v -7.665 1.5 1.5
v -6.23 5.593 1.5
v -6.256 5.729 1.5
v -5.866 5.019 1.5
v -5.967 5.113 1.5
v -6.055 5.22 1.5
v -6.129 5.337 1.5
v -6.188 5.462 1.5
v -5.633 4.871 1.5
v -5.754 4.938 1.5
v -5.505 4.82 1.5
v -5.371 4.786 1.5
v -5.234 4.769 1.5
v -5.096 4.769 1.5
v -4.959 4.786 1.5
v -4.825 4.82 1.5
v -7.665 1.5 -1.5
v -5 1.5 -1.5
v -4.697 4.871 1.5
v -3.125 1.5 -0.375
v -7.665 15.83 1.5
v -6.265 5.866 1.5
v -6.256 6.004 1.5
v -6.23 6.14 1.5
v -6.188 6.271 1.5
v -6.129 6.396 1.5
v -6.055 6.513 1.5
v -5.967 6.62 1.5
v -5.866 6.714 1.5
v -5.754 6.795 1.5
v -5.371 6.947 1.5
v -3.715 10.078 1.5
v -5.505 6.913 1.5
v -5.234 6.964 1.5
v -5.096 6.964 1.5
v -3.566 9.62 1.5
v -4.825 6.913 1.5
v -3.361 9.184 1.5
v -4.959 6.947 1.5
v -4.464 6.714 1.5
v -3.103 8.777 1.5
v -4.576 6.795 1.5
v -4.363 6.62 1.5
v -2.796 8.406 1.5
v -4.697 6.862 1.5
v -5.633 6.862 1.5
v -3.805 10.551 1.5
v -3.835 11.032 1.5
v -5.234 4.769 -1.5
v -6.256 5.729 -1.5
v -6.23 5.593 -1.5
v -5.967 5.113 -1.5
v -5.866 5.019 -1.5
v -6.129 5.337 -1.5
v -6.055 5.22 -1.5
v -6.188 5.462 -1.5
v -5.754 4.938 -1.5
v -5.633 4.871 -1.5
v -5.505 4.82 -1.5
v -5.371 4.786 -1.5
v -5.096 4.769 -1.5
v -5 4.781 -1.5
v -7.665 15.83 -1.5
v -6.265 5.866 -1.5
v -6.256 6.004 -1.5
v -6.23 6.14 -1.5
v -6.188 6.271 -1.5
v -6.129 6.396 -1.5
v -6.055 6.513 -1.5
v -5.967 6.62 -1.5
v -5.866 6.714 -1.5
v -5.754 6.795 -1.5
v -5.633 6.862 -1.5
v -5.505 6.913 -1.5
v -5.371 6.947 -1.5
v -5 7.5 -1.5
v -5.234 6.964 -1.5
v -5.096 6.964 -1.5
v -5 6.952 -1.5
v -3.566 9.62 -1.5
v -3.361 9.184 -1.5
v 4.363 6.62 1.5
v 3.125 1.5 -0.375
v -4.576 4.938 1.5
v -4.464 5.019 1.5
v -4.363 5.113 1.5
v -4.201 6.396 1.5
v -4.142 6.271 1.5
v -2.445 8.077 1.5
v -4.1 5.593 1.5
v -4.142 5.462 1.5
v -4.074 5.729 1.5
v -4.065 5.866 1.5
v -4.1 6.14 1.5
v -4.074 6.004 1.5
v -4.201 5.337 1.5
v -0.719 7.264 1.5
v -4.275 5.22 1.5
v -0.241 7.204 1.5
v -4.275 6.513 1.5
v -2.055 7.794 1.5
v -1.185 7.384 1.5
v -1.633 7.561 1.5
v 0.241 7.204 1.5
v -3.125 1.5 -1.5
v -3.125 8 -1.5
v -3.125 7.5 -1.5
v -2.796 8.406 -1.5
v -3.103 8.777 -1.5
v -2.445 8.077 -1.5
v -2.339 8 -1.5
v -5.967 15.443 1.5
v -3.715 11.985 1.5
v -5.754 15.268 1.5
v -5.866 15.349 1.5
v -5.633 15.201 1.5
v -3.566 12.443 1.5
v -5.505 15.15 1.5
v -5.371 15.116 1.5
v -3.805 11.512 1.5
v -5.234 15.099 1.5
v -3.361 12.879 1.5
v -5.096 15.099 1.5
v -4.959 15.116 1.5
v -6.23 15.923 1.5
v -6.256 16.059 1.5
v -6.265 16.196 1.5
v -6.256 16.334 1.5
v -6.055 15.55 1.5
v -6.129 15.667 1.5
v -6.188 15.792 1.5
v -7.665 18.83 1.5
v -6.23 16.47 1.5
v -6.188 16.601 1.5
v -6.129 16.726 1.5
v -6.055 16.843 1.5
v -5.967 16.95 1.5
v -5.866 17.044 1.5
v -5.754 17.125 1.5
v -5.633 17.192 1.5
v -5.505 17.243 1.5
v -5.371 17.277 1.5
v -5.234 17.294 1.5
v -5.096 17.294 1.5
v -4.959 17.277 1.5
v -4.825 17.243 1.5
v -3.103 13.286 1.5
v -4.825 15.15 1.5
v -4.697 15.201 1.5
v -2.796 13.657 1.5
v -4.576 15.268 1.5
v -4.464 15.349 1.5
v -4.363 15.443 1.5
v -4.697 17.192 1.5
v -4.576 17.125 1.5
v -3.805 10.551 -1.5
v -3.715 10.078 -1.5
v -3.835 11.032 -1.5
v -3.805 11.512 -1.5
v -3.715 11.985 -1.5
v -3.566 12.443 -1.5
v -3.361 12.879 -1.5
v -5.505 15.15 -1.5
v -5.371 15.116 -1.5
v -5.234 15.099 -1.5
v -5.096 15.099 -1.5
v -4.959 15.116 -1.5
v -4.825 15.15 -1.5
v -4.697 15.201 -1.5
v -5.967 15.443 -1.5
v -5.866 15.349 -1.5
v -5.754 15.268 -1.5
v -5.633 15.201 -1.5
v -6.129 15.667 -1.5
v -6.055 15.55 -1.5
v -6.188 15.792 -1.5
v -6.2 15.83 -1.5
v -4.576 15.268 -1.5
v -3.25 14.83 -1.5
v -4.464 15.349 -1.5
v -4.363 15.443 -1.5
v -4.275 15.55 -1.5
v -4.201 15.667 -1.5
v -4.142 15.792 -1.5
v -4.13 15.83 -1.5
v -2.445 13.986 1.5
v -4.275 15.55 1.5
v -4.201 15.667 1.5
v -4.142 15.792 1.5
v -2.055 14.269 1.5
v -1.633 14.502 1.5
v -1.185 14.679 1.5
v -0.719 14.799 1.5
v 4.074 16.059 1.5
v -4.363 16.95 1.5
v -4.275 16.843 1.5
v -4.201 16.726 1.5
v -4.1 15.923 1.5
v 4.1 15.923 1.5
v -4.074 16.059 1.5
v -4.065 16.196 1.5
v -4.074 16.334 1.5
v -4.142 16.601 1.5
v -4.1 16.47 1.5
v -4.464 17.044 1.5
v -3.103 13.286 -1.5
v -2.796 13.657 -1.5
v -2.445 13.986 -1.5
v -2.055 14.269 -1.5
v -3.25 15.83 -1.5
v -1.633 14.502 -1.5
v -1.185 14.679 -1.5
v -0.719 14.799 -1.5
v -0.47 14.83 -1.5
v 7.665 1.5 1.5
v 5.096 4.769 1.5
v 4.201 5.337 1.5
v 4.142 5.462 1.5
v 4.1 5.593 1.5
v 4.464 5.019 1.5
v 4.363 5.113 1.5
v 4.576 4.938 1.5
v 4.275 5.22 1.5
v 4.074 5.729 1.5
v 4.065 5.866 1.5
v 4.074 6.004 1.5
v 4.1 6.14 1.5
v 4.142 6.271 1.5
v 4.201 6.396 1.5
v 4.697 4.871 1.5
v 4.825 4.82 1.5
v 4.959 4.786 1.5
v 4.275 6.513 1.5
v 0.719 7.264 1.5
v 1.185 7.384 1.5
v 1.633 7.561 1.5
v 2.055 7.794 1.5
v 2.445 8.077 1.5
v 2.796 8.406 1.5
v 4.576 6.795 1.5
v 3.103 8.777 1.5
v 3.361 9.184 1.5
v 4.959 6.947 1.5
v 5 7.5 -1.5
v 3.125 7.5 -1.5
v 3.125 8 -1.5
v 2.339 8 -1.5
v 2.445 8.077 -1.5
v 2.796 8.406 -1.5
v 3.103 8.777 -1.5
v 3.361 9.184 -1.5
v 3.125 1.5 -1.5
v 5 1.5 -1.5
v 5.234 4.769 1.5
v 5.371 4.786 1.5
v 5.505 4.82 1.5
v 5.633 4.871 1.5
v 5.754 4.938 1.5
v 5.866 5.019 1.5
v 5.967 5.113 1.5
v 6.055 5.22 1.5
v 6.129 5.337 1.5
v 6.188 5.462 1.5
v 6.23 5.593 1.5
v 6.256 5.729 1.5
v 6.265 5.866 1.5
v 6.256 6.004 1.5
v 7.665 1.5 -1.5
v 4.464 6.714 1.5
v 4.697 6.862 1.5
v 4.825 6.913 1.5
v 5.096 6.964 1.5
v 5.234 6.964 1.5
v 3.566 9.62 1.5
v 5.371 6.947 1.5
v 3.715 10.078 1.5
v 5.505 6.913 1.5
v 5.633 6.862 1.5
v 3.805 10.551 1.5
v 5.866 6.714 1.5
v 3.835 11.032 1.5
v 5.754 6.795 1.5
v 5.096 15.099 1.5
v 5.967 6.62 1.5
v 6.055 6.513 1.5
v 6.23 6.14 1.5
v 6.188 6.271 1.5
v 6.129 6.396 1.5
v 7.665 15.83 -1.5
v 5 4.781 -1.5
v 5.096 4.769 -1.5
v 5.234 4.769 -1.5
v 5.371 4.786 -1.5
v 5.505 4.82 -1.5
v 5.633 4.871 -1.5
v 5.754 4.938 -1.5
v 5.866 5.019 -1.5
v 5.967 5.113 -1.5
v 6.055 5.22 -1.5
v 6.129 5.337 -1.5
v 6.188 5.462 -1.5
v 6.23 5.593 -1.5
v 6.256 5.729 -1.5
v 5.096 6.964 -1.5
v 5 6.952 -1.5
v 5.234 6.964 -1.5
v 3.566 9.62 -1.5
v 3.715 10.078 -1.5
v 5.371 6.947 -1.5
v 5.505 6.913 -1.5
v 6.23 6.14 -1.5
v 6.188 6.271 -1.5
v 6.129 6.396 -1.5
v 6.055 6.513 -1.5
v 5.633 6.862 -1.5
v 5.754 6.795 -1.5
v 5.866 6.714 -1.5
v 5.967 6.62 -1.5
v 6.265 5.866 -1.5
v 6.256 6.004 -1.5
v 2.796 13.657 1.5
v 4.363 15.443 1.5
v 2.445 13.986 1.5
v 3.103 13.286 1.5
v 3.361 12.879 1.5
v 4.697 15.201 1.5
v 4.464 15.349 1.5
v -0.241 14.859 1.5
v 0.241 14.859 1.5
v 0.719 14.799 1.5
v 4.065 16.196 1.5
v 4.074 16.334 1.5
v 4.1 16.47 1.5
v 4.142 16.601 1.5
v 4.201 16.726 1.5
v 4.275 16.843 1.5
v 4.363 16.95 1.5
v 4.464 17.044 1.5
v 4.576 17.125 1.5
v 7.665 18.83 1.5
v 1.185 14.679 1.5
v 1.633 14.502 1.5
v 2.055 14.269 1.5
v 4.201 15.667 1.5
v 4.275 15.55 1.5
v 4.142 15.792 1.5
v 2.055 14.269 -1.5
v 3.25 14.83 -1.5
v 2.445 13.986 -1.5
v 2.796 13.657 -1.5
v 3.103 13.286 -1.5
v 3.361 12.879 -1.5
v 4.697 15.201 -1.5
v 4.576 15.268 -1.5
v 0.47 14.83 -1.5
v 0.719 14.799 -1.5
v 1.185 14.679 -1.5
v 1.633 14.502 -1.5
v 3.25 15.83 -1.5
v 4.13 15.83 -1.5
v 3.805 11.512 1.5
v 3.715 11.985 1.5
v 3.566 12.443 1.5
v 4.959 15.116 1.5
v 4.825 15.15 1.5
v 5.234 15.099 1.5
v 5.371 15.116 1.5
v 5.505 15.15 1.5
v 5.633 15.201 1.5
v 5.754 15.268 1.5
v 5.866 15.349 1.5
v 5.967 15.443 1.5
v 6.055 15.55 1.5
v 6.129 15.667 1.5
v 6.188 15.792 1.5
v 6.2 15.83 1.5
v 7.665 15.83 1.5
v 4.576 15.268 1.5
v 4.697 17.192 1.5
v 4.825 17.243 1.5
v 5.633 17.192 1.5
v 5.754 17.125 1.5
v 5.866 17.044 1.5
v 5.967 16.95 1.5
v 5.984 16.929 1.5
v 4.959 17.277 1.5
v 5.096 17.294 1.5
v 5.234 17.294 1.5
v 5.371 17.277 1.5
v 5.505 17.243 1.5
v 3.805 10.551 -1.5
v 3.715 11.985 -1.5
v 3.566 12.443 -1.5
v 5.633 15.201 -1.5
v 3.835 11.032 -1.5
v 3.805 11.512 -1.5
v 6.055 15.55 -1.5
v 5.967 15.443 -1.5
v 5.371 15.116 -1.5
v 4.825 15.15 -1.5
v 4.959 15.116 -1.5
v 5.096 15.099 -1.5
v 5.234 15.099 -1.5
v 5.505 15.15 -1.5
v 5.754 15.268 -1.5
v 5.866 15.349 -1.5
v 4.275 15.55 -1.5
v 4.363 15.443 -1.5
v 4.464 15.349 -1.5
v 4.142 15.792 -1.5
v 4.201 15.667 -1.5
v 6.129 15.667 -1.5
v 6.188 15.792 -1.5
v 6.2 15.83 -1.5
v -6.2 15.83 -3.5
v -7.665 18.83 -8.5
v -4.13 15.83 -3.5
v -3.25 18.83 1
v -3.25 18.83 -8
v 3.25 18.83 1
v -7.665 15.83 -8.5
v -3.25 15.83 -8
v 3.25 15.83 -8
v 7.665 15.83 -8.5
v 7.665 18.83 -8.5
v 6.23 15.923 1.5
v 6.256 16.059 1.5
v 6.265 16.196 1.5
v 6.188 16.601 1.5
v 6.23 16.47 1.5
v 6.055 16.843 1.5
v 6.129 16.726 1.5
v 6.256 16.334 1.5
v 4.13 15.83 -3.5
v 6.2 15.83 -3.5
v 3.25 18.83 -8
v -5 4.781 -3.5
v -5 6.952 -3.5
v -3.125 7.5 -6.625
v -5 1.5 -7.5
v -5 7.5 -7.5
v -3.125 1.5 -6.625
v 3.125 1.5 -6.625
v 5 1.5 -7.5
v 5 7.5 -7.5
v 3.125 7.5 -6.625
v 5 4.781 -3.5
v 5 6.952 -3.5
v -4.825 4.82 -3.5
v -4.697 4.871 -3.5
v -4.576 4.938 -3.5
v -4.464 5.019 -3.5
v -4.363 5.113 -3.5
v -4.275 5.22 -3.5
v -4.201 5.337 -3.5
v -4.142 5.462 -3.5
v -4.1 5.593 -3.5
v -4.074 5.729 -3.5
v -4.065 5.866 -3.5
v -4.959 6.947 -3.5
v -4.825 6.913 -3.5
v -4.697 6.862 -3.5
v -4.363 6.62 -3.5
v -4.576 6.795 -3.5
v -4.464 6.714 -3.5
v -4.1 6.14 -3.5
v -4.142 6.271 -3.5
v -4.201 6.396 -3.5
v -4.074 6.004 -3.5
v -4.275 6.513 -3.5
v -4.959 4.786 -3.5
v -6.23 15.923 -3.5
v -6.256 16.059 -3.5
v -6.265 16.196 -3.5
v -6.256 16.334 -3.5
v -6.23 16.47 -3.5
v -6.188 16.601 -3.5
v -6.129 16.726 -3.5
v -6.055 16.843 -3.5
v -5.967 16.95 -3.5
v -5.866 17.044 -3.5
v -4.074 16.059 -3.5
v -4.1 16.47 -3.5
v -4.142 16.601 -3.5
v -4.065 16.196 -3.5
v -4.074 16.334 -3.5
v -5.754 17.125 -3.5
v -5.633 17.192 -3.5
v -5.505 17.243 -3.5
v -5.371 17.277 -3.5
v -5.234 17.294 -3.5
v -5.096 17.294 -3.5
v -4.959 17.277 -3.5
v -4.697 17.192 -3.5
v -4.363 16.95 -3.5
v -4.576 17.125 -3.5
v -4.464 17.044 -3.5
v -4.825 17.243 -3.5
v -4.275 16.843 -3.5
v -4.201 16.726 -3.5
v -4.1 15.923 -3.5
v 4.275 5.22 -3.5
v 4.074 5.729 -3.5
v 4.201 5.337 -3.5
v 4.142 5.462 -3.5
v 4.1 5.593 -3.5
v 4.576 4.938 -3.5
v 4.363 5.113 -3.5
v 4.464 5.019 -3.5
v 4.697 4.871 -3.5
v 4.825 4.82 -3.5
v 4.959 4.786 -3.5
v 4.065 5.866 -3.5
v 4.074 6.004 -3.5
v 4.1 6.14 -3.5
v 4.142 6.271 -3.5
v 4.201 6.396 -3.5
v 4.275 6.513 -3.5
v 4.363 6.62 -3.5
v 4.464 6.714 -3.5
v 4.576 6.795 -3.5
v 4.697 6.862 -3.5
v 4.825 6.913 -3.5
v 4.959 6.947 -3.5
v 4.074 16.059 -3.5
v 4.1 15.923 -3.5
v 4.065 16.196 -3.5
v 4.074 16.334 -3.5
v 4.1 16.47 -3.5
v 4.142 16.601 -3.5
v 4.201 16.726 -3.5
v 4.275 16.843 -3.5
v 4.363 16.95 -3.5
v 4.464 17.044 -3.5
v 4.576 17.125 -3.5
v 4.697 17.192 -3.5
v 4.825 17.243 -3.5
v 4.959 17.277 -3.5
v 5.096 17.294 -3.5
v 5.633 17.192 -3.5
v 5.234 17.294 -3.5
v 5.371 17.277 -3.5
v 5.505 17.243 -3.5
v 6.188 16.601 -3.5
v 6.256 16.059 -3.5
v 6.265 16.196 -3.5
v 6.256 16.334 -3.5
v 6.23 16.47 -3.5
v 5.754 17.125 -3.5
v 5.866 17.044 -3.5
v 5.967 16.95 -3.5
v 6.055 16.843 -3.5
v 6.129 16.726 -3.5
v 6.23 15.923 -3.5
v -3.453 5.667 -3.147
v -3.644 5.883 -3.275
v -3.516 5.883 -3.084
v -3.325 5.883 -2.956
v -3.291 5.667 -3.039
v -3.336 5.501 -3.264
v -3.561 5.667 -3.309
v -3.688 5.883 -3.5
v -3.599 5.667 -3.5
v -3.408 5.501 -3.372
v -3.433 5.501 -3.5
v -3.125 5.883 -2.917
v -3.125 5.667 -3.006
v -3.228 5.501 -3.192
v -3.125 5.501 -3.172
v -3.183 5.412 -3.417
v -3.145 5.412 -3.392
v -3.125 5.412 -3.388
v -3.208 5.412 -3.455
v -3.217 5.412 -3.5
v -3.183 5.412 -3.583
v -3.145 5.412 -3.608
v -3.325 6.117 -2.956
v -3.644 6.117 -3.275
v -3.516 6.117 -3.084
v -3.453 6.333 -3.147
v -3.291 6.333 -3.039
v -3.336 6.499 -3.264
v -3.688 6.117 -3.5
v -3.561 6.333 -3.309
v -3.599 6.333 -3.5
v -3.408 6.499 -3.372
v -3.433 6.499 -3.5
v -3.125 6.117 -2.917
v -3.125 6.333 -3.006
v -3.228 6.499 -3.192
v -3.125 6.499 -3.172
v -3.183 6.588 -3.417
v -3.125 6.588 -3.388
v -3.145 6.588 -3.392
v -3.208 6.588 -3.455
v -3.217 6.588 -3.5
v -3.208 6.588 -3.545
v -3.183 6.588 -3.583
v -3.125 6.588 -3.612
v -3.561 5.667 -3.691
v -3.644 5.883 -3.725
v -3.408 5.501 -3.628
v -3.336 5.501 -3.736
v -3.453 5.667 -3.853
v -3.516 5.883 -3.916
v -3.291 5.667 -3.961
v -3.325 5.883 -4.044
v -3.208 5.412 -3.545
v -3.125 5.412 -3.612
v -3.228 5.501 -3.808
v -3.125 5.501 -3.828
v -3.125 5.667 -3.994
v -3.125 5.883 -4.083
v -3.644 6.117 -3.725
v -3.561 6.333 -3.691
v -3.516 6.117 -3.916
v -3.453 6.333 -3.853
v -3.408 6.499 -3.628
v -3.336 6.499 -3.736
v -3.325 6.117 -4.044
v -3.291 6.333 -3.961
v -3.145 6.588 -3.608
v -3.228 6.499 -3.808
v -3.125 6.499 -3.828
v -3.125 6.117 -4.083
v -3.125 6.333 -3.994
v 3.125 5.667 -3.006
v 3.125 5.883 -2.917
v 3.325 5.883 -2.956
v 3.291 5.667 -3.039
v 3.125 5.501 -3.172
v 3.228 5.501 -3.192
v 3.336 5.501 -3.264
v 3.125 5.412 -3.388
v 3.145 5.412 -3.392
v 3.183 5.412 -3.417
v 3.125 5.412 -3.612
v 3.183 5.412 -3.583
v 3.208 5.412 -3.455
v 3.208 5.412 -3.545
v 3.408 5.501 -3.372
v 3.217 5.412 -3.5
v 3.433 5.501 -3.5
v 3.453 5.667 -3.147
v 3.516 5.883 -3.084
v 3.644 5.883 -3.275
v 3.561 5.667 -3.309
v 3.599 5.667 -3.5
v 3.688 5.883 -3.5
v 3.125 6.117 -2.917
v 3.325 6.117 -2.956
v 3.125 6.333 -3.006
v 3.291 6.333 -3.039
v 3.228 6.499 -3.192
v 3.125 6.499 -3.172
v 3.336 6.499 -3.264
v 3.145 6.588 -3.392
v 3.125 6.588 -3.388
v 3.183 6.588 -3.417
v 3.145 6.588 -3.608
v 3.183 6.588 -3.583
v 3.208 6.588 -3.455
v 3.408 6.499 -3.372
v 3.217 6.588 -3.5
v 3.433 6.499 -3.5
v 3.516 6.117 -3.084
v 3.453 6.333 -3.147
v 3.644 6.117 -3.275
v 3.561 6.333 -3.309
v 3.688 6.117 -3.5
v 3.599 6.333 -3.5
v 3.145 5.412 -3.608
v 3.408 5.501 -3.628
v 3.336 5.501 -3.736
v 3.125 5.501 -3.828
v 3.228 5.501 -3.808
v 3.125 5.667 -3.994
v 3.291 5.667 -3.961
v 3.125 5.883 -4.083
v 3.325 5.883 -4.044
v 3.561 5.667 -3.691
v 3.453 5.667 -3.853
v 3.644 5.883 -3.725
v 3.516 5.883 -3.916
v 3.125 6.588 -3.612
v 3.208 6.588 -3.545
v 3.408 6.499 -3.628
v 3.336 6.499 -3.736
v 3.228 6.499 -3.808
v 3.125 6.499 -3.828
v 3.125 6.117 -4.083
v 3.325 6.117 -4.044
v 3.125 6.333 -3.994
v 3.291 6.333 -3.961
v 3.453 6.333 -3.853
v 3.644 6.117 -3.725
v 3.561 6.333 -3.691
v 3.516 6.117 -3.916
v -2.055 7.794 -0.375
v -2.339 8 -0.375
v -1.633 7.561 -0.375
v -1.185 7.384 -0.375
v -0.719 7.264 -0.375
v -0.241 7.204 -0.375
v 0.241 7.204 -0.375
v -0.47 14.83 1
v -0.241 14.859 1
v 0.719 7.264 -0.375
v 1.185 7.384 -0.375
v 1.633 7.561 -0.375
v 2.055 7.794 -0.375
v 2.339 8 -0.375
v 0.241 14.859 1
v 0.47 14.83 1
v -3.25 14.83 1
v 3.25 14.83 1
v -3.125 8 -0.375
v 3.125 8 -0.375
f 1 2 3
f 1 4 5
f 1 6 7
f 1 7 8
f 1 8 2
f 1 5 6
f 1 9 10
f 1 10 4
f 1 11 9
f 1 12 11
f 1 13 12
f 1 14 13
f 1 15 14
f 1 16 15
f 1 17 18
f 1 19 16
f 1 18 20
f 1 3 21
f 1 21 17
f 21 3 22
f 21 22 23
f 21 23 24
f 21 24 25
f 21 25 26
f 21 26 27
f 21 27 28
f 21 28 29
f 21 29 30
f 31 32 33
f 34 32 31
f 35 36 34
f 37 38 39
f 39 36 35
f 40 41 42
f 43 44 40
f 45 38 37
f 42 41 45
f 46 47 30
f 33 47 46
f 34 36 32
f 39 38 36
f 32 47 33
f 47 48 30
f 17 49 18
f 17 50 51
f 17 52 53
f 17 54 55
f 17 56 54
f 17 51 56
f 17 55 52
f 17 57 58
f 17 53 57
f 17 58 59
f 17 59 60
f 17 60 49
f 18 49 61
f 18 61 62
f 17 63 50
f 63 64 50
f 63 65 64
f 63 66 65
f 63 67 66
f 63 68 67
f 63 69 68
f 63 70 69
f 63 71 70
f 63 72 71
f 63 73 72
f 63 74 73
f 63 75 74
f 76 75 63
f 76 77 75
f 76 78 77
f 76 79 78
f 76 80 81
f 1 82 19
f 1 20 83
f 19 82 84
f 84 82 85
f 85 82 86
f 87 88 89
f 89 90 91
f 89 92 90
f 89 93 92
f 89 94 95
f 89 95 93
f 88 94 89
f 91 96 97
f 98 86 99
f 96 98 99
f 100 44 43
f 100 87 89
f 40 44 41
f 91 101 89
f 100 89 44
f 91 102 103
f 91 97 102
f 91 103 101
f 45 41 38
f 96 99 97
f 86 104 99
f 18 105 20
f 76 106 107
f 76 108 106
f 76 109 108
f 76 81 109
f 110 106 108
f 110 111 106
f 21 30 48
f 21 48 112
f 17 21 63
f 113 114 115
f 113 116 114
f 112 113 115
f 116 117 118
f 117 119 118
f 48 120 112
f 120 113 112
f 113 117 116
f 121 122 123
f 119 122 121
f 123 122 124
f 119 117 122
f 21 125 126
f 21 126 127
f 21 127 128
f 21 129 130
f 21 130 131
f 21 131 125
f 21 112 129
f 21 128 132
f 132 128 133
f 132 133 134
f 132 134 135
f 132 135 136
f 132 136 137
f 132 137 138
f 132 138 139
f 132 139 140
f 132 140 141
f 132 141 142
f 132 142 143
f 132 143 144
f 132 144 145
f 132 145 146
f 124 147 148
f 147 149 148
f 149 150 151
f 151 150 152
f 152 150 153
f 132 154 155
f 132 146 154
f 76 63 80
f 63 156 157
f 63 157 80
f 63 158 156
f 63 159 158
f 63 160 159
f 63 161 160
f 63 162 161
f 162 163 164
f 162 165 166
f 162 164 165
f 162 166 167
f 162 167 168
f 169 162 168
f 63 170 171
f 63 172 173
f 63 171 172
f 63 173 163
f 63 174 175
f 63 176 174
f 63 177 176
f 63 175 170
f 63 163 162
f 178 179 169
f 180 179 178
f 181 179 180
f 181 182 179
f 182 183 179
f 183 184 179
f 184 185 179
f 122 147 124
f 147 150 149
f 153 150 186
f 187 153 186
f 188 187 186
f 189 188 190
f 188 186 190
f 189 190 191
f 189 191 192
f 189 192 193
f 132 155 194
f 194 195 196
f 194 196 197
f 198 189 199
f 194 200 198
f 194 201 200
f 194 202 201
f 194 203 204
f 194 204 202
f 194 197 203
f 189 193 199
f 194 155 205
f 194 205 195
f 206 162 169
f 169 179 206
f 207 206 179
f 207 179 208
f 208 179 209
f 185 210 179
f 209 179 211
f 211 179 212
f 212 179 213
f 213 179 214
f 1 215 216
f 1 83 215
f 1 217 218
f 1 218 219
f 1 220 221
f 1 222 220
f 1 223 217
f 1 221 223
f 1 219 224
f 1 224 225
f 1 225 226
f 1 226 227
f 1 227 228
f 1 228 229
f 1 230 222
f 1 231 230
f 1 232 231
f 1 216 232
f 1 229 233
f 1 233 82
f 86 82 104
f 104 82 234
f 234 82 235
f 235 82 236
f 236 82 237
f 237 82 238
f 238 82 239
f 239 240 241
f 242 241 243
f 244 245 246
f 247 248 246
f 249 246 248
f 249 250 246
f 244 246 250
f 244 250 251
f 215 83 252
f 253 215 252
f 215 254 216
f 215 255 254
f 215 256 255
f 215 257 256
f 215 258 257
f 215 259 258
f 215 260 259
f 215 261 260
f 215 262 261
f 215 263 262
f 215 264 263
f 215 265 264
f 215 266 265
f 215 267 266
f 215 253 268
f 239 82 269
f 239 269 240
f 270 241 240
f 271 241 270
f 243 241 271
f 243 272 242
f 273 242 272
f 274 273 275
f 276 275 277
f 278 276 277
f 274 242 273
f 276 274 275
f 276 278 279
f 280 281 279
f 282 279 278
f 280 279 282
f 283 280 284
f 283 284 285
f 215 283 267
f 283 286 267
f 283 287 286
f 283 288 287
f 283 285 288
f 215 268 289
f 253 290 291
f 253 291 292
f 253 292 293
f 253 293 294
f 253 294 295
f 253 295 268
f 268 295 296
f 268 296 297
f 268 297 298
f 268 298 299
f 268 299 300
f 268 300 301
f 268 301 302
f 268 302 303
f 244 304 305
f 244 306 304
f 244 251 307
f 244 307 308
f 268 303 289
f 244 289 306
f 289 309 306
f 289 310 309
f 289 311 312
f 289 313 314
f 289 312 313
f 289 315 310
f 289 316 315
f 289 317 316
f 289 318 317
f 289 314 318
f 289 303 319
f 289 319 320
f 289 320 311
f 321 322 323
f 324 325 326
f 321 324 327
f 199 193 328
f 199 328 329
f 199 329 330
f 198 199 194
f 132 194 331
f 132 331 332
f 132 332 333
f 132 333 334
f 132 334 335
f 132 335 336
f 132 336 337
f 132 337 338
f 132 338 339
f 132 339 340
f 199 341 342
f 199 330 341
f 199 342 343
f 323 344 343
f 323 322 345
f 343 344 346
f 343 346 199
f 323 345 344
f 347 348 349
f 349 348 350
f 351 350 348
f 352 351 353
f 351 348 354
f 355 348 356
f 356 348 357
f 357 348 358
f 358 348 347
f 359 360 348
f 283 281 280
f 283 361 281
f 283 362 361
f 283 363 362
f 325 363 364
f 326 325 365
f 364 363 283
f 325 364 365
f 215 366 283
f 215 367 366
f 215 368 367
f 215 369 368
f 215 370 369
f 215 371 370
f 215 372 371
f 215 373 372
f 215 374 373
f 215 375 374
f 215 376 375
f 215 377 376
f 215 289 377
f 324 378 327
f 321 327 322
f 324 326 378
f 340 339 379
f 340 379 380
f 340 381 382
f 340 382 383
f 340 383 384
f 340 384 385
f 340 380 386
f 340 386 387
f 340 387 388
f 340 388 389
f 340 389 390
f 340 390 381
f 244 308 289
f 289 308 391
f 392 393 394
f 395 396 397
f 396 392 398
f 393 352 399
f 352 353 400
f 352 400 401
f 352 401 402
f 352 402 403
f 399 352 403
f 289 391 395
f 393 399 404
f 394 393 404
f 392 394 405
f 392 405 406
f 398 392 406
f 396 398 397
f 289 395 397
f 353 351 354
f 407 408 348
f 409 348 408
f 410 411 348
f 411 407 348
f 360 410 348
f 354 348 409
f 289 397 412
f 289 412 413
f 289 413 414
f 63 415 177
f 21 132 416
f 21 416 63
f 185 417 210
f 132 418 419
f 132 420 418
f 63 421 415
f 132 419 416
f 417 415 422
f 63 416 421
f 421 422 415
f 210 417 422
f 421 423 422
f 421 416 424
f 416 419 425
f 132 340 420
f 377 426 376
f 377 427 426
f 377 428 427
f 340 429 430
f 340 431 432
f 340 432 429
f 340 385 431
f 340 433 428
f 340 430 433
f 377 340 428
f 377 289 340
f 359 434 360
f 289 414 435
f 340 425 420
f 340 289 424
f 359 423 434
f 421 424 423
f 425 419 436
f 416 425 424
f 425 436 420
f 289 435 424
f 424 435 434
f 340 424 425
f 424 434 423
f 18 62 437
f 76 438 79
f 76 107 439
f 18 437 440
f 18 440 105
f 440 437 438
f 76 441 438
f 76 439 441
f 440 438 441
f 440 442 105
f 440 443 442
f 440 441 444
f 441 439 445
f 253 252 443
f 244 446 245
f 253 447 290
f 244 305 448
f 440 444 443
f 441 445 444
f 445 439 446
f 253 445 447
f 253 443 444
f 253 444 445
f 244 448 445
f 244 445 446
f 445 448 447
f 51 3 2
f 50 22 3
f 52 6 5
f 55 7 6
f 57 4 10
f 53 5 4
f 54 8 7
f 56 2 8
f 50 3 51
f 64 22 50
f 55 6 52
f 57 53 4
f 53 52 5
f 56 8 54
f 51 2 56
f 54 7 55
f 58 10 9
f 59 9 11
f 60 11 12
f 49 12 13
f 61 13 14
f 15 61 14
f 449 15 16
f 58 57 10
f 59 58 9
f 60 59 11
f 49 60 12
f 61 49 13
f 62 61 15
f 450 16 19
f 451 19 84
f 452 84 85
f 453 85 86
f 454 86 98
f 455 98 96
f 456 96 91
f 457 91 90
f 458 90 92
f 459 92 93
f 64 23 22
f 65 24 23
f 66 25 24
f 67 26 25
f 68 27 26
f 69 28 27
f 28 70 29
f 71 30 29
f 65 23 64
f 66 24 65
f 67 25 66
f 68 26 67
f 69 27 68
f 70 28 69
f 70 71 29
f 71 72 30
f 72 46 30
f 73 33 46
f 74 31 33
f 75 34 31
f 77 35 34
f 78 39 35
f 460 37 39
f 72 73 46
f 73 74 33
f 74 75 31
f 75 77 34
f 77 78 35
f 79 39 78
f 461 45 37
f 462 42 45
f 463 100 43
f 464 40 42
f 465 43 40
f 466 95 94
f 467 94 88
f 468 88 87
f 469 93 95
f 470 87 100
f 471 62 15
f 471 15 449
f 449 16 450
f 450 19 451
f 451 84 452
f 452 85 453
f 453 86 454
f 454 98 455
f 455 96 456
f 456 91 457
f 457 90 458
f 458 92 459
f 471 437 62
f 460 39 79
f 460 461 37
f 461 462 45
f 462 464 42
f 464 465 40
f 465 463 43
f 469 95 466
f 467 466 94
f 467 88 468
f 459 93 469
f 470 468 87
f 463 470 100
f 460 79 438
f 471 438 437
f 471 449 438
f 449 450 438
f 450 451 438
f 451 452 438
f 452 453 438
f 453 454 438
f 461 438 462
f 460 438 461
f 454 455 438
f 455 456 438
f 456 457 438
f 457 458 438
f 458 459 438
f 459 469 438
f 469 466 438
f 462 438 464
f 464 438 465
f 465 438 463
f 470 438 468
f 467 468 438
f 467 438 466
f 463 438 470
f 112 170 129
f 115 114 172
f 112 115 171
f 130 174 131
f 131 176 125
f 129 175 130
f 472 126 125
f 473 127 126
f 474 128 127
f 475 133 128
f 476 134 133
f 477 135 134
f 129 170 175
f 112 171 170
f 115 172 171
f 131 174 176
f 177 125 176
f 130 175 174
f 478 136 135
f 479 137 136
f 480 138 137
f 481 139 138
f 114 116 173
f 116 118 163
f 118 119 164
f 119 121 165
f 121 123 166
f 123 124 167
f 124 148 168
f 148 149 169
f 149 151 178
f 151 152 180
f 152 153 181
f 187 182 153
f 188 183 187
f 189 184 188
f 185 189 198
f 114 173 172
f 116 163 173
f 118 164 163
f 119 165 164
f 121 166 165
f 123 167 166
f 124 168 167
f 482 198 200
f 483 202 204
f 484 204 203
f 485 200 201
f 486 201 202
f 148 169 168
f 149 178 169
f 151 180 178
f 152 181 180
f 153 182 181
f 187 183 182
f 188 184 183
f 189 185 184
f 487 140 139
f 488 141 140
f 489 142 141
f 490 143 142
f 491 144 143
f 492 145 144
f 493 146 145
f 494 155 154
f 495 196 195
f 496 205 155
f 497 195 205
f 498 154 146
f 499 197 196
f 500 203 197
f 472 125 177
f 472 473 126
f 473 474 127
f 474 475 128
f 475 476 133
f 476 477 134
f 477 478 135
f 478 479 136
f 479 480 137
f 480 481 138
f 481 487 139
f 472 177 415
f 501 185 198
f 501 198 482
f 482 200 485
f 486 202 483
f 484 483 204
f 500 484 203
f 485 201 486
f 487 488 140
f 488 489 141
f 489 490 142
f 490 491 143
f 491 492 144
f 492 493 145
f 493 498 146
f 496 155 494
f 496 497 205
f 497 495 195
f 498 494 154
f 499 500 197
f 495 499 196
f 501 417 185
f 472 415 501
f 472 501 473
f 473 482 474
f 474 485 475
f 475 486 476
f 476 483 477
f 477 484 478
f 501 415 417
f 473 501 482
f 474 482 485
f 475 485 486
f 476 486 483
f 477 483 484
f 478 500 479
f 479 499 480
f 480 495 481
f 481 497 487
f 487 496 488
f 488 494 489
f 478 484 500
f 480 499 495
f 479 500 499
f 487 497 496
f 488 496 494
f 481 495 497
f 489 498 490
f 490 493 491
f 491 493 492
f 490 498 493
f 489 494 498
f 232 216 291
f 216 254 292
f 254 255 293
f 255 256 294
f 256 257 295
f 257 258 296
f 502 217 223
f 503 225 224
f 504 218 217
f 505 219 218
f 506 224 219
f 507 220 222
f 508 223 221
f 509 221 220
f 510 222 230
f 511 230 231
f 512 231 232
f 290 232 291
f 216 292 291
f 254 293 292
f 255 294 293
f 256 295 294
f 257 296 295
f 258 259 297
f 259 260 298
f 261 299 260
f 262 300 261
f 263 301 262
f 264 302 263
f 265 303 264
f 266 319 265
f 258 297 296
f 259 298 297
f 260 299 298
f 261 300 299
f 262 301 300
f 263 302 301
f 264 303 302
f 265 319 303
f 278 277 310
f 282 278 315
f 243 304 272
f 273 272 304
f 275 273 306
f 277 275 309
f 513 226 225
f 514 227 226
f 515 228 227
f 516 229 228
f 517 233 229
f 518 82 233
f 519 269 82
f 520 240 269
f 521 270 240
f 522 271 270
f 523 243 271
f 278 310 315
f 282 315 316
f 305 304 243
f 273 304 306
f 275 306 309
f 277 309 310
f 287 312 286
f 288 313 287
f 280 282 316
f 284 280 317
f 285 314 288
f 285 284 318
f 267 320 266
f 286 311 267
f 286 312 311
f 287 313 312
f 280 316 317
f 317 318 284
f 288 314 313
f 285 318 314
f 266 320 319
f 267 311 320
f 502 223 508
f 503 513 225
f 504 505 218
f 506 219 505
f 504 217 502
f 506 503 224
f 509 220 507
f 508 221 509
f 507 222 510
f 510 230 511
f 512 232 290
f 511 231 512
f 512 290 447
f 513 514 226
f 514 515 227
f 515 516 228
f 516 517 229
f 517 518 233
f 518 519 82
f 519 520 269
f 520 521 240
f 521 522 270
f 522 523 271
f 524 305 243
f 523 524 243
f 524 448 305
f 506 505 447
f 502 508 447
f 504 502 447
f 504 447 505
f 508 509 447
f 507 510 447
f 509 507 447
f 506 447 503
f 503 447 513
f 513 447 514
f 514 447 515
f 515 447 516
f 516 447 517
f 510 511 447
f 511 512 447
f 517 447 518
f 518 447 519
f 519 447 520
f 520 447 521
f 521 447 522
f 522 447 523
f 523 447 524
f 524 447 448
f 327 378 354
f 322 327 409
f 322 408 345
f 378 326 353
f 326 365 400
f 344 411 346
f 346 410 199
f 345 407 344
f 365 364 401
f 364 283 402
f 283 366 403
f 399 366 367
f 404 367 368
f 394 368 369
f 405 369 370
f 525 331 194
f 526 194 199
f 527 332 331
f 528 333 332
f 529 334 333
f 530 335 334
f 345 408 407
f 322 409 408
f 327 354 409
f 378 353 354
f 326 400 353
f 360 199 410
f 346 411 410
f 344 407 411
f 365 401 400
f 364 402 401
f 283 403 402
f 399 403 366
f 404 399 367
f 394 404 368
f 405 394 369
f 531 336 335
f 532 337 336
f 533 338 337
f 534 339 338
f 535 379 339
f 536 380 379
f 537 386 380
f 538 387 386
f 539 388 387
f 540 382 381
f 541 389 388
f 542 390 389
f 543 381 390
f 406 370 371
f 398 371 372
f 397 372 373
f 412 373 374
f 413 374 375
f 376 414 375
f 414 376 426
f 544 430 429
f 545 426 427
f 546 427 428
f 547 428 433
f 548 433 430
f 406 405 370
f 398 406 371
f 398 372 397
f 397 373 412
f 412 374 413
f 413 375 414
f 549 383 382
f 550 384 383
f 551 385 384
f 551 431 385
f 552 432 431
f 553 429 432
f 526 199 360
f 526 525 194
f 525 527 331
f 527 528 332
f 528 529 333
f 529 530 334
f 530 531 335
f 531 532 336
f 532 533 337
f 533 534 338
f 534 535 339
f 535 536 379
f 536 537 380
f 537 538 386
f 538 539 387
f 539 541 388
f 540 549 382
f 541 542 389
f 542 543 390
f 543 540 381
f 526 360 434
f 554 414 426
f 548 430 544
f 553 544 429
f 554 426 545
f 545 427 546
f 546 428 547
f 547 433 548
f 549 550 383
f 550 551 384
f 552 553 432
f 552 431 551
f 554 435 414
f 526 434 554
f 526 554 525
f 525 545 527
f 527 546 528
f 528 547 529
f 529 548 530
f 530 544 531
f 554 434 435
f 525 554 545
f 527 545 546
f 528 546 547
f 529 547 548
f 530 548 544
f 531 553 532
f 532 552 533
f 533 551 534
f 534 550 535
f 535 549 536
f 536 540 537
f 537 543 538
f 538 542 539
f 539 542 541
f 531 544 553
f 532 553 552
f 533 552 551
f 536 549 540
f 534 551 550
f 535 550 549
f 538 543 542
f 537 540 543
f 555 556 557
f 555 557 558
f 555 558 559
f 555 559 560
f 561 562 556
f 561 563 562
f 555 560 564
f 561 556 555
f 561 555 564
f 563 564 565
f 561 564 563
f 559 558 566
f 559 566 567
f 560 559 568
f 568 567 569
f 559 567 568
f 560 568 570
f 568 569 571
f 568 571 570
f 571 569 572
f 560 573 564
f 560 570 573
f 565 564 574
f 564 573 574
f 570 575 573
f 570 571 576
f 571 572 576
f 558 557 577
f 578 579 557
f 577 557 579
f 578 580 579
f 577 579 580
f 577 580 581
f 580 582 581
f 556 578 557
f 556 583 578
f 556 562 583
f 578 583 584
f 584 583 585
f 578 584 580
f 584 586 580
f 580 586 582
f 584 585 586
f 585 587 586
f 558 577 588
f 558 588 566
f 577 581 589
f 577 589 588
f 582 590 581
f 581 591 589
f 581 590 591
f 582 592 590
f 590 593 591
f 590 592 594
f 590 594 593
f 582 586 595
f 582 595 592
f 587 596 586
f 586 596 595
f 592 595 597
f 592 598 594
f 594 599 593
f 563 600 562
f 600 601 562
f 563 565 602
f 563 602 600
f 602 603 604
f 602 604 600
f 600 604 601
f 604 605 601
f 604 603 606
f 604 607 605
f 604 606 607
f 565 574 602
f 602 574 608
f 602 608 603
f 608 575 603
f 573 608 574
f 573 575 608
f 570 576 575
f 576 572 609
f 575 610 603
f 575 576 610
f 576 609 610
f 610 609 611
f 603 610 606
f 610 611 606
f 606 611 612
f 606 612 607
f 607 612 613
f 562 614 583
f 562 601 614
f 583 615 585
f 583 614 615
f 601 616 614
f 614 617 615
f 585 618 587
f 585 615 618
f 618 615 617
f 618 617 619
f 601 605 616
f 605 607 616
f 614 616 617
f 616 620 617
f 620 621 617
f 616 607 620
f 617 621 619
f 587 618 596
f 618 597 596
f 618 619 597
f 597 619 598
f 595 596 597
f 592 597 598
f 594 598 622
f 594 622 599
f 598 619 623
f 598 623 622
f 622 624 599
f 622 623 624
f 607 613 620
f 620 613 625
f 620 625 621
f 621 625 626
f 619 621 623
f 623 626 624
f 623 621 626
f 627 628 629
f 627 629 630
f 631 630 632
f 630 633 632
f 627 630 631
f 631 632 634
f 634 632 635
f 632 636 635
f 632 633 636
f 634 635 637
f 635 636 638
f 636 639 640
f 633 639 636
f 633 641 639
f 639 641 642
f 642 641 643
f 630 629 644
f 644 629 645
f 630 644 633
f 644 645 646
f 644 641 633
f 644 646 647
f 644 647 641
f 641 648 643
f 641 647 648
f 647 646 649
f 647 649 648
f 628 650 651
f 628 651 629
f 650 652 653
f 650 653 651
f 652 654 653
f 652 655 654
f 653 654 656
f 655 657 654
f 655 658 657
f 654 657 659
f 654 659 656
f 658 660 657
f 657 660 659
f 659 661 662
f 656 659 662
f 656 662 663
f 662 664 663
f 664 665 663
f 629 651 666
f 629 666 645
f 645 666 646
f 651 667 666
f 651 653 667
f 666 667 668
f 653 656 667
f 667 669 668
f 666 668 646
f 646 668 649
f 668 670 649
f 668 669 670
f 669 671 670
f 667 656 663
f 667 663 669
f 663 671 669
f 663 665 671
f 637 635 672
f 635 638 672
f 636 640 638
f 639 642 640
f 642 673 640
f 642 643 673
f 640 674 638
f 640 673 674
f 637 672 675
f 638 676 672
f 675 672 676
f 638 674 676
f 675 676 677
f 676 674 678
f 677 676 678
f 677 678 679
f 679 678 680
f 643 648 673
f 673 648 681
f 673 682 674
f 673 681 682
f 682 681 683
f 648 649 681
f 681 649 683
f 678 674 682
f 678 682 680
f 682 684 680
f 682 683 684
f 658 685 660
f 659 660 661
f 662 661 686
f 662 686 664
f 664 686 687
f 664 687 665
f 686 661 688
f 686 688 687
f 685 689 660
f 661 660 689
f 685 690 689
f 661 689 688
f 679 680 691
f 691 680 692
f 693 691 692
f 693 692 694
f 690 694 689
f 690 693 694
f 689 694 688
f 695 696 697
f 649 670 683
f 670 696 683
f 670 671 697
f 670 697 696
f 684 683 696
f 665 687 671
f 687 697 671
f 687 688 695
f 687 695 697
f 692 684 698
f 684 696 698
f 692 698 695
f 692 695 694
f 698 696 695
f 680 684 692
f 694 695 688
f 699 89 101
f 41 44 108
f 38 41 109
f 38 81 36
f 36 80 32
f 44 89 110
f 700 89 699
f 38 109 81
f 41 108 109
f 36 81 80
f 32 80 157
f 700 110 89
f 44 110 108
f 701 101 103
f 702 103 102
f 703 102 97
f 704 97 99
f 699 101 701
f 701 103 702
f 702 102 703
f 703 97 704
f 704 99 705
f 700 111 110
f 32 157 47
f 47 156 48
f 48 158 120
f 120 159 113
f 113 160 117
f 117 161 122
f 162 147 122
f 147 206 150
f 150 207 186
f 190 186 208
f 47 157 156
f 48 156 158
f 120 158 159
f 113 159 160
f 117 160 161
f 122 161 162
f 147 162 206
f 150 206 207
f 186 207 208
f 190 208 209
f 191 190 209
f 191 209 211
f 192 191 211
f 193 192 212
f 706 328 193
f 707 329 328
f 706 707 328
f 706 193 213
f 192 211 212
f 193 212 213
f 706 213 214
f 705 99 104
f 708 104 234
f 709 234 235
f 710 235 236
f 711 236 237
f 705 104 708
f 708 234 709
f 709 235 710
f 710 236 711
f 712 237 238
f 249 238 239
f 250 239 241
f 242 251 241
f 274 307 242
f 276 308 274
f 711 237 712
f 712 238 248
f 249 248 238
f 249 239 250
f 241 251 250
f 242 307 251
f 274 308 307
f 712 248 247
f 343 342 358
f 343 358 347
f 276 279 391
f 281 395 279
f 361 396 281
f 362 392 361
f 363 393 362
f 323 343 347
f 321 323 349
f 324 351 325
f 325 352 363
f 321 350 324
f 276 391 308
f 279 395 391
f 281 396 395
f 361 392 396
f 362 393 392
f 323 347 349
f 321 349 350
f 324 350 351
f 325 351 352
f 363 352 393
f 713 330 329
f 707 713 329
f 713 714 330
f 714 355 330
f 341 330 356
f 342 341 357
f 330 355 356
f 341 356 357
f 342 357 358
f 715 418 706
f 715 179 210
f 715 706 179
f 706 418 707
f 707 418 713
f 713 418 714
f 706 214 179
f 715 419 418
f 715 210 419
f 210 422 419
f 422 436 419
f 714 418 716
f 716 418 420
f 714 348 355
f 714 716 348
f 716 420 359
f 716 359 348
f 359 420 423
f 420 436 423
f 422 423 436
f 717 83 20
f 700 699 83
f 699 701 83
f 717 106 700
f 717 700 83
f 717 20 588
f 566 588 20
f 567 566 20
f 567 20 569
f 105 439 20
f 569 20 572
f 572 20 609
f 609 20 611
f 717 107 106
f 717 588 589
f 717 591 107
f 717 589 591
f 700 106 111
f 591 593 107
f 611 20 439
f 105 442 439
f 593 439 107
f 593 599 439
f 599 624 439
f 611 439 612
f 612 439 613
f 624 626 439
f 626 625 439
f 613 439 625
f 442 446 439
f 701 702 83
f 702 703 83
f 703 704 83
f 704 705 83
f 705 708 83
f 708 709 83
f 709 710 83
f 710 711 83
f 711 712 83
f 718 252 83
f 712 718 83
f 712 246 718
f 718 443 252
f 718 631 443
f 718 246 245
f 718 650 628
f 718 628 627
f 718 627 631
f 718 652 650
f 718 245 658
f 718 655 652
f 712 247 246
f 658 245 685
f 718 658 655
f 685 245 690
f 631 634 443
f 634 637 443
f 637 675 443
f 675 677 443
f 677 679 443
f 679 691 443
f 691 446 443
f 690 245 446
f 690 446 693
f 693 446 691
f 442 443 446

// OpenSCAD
// ====================================================================
// [PRINT 06-B] Tower Station A - Upper Head Bracket
// Lies 100% flat on its back plate at Z = 0.
// Includes square socket pocket for Part 06-A snap post.
// ZERO SUPPORTS NEEDED!
// ====================================================================

$fn = 50;

bracket_w        = 15.33; // Width of mounting face
bracket_h        = 17.33; // Height of mounting plate
plate_th         = 3.0;   // Thickness of plate
nema17_hole_dist = 10.33; // Motor mounting hole spacing
nema17_pilot_d   = 7.67;  // Center pilot collar clearance
m3_hole_d        = 2.2;   // Bolt clearance

module tower_head_a_bracket() {
    difference() {
        union() {
            // Main vertical faceplate
            translate([0, 0, bracket_h / 2])
                cube([bracket_w, plate_th, bracket_h], center = true);

            // Overhead cable guide horn
            translate([0, 3.5, bracket_h - 1.5])
                cube([bracket_w, 7.0 + plate_th, 3.0], center = true);

            // Lower snap-fit receiving hub (rests flat at Z = 0)
            translate([0, 3.5, 3.0])
                cube([10.0, 8.0, 6.0], center = true);
        }

        // Center pilot hole (for axle bolt or motor collar)
        translate([0, 0, bracket_h * 0.55])
            rotate([90, 0, 0])
                cylinder(d = nema17_pilot_d, h = plate_th + 4, center = true);

        // 4x Motor mounting holes
        for (dx = [-nema17_hole_dist / 2, nema17_hole_dist / 2]) {
            for (dz = [-nema17_hole_dist / 2, nema17_hole_dist / 2]) {
                translate([dx, 0, (bracket_h * 0.55) + dz])
                    rotate([90, 0, 0])
                        cylinder(d = m3_hole_d, h = plate_th + 4, center = true);
            }
        }

        // Cable path slot through the overhead horn
        translate([0, 3.5, bracket_h - 1.5])
            cube([6.5, 9.0, 5.0], center = true);

        // Receiving socket pocket for Part A post (includes +0.2mm print gap clearance)
        translate([0, 3.5, 3.0])
            cube([6.25, 6.25, 7.0], center = true);

        // Side snap-fit detent channels
        for (x_sign = [-1, 1]) {
            translate([x_sign * 3.1, 3.5, 4.5])
                sphere(r = 0.6, $fn = 16);
        }
    }
}

// Laid flat on rear face of motor plate at Z = 0
translate([0, plate_th / 2, 0])
    rotate([-90, 0, 0])
        tower_head_a_bracket();
